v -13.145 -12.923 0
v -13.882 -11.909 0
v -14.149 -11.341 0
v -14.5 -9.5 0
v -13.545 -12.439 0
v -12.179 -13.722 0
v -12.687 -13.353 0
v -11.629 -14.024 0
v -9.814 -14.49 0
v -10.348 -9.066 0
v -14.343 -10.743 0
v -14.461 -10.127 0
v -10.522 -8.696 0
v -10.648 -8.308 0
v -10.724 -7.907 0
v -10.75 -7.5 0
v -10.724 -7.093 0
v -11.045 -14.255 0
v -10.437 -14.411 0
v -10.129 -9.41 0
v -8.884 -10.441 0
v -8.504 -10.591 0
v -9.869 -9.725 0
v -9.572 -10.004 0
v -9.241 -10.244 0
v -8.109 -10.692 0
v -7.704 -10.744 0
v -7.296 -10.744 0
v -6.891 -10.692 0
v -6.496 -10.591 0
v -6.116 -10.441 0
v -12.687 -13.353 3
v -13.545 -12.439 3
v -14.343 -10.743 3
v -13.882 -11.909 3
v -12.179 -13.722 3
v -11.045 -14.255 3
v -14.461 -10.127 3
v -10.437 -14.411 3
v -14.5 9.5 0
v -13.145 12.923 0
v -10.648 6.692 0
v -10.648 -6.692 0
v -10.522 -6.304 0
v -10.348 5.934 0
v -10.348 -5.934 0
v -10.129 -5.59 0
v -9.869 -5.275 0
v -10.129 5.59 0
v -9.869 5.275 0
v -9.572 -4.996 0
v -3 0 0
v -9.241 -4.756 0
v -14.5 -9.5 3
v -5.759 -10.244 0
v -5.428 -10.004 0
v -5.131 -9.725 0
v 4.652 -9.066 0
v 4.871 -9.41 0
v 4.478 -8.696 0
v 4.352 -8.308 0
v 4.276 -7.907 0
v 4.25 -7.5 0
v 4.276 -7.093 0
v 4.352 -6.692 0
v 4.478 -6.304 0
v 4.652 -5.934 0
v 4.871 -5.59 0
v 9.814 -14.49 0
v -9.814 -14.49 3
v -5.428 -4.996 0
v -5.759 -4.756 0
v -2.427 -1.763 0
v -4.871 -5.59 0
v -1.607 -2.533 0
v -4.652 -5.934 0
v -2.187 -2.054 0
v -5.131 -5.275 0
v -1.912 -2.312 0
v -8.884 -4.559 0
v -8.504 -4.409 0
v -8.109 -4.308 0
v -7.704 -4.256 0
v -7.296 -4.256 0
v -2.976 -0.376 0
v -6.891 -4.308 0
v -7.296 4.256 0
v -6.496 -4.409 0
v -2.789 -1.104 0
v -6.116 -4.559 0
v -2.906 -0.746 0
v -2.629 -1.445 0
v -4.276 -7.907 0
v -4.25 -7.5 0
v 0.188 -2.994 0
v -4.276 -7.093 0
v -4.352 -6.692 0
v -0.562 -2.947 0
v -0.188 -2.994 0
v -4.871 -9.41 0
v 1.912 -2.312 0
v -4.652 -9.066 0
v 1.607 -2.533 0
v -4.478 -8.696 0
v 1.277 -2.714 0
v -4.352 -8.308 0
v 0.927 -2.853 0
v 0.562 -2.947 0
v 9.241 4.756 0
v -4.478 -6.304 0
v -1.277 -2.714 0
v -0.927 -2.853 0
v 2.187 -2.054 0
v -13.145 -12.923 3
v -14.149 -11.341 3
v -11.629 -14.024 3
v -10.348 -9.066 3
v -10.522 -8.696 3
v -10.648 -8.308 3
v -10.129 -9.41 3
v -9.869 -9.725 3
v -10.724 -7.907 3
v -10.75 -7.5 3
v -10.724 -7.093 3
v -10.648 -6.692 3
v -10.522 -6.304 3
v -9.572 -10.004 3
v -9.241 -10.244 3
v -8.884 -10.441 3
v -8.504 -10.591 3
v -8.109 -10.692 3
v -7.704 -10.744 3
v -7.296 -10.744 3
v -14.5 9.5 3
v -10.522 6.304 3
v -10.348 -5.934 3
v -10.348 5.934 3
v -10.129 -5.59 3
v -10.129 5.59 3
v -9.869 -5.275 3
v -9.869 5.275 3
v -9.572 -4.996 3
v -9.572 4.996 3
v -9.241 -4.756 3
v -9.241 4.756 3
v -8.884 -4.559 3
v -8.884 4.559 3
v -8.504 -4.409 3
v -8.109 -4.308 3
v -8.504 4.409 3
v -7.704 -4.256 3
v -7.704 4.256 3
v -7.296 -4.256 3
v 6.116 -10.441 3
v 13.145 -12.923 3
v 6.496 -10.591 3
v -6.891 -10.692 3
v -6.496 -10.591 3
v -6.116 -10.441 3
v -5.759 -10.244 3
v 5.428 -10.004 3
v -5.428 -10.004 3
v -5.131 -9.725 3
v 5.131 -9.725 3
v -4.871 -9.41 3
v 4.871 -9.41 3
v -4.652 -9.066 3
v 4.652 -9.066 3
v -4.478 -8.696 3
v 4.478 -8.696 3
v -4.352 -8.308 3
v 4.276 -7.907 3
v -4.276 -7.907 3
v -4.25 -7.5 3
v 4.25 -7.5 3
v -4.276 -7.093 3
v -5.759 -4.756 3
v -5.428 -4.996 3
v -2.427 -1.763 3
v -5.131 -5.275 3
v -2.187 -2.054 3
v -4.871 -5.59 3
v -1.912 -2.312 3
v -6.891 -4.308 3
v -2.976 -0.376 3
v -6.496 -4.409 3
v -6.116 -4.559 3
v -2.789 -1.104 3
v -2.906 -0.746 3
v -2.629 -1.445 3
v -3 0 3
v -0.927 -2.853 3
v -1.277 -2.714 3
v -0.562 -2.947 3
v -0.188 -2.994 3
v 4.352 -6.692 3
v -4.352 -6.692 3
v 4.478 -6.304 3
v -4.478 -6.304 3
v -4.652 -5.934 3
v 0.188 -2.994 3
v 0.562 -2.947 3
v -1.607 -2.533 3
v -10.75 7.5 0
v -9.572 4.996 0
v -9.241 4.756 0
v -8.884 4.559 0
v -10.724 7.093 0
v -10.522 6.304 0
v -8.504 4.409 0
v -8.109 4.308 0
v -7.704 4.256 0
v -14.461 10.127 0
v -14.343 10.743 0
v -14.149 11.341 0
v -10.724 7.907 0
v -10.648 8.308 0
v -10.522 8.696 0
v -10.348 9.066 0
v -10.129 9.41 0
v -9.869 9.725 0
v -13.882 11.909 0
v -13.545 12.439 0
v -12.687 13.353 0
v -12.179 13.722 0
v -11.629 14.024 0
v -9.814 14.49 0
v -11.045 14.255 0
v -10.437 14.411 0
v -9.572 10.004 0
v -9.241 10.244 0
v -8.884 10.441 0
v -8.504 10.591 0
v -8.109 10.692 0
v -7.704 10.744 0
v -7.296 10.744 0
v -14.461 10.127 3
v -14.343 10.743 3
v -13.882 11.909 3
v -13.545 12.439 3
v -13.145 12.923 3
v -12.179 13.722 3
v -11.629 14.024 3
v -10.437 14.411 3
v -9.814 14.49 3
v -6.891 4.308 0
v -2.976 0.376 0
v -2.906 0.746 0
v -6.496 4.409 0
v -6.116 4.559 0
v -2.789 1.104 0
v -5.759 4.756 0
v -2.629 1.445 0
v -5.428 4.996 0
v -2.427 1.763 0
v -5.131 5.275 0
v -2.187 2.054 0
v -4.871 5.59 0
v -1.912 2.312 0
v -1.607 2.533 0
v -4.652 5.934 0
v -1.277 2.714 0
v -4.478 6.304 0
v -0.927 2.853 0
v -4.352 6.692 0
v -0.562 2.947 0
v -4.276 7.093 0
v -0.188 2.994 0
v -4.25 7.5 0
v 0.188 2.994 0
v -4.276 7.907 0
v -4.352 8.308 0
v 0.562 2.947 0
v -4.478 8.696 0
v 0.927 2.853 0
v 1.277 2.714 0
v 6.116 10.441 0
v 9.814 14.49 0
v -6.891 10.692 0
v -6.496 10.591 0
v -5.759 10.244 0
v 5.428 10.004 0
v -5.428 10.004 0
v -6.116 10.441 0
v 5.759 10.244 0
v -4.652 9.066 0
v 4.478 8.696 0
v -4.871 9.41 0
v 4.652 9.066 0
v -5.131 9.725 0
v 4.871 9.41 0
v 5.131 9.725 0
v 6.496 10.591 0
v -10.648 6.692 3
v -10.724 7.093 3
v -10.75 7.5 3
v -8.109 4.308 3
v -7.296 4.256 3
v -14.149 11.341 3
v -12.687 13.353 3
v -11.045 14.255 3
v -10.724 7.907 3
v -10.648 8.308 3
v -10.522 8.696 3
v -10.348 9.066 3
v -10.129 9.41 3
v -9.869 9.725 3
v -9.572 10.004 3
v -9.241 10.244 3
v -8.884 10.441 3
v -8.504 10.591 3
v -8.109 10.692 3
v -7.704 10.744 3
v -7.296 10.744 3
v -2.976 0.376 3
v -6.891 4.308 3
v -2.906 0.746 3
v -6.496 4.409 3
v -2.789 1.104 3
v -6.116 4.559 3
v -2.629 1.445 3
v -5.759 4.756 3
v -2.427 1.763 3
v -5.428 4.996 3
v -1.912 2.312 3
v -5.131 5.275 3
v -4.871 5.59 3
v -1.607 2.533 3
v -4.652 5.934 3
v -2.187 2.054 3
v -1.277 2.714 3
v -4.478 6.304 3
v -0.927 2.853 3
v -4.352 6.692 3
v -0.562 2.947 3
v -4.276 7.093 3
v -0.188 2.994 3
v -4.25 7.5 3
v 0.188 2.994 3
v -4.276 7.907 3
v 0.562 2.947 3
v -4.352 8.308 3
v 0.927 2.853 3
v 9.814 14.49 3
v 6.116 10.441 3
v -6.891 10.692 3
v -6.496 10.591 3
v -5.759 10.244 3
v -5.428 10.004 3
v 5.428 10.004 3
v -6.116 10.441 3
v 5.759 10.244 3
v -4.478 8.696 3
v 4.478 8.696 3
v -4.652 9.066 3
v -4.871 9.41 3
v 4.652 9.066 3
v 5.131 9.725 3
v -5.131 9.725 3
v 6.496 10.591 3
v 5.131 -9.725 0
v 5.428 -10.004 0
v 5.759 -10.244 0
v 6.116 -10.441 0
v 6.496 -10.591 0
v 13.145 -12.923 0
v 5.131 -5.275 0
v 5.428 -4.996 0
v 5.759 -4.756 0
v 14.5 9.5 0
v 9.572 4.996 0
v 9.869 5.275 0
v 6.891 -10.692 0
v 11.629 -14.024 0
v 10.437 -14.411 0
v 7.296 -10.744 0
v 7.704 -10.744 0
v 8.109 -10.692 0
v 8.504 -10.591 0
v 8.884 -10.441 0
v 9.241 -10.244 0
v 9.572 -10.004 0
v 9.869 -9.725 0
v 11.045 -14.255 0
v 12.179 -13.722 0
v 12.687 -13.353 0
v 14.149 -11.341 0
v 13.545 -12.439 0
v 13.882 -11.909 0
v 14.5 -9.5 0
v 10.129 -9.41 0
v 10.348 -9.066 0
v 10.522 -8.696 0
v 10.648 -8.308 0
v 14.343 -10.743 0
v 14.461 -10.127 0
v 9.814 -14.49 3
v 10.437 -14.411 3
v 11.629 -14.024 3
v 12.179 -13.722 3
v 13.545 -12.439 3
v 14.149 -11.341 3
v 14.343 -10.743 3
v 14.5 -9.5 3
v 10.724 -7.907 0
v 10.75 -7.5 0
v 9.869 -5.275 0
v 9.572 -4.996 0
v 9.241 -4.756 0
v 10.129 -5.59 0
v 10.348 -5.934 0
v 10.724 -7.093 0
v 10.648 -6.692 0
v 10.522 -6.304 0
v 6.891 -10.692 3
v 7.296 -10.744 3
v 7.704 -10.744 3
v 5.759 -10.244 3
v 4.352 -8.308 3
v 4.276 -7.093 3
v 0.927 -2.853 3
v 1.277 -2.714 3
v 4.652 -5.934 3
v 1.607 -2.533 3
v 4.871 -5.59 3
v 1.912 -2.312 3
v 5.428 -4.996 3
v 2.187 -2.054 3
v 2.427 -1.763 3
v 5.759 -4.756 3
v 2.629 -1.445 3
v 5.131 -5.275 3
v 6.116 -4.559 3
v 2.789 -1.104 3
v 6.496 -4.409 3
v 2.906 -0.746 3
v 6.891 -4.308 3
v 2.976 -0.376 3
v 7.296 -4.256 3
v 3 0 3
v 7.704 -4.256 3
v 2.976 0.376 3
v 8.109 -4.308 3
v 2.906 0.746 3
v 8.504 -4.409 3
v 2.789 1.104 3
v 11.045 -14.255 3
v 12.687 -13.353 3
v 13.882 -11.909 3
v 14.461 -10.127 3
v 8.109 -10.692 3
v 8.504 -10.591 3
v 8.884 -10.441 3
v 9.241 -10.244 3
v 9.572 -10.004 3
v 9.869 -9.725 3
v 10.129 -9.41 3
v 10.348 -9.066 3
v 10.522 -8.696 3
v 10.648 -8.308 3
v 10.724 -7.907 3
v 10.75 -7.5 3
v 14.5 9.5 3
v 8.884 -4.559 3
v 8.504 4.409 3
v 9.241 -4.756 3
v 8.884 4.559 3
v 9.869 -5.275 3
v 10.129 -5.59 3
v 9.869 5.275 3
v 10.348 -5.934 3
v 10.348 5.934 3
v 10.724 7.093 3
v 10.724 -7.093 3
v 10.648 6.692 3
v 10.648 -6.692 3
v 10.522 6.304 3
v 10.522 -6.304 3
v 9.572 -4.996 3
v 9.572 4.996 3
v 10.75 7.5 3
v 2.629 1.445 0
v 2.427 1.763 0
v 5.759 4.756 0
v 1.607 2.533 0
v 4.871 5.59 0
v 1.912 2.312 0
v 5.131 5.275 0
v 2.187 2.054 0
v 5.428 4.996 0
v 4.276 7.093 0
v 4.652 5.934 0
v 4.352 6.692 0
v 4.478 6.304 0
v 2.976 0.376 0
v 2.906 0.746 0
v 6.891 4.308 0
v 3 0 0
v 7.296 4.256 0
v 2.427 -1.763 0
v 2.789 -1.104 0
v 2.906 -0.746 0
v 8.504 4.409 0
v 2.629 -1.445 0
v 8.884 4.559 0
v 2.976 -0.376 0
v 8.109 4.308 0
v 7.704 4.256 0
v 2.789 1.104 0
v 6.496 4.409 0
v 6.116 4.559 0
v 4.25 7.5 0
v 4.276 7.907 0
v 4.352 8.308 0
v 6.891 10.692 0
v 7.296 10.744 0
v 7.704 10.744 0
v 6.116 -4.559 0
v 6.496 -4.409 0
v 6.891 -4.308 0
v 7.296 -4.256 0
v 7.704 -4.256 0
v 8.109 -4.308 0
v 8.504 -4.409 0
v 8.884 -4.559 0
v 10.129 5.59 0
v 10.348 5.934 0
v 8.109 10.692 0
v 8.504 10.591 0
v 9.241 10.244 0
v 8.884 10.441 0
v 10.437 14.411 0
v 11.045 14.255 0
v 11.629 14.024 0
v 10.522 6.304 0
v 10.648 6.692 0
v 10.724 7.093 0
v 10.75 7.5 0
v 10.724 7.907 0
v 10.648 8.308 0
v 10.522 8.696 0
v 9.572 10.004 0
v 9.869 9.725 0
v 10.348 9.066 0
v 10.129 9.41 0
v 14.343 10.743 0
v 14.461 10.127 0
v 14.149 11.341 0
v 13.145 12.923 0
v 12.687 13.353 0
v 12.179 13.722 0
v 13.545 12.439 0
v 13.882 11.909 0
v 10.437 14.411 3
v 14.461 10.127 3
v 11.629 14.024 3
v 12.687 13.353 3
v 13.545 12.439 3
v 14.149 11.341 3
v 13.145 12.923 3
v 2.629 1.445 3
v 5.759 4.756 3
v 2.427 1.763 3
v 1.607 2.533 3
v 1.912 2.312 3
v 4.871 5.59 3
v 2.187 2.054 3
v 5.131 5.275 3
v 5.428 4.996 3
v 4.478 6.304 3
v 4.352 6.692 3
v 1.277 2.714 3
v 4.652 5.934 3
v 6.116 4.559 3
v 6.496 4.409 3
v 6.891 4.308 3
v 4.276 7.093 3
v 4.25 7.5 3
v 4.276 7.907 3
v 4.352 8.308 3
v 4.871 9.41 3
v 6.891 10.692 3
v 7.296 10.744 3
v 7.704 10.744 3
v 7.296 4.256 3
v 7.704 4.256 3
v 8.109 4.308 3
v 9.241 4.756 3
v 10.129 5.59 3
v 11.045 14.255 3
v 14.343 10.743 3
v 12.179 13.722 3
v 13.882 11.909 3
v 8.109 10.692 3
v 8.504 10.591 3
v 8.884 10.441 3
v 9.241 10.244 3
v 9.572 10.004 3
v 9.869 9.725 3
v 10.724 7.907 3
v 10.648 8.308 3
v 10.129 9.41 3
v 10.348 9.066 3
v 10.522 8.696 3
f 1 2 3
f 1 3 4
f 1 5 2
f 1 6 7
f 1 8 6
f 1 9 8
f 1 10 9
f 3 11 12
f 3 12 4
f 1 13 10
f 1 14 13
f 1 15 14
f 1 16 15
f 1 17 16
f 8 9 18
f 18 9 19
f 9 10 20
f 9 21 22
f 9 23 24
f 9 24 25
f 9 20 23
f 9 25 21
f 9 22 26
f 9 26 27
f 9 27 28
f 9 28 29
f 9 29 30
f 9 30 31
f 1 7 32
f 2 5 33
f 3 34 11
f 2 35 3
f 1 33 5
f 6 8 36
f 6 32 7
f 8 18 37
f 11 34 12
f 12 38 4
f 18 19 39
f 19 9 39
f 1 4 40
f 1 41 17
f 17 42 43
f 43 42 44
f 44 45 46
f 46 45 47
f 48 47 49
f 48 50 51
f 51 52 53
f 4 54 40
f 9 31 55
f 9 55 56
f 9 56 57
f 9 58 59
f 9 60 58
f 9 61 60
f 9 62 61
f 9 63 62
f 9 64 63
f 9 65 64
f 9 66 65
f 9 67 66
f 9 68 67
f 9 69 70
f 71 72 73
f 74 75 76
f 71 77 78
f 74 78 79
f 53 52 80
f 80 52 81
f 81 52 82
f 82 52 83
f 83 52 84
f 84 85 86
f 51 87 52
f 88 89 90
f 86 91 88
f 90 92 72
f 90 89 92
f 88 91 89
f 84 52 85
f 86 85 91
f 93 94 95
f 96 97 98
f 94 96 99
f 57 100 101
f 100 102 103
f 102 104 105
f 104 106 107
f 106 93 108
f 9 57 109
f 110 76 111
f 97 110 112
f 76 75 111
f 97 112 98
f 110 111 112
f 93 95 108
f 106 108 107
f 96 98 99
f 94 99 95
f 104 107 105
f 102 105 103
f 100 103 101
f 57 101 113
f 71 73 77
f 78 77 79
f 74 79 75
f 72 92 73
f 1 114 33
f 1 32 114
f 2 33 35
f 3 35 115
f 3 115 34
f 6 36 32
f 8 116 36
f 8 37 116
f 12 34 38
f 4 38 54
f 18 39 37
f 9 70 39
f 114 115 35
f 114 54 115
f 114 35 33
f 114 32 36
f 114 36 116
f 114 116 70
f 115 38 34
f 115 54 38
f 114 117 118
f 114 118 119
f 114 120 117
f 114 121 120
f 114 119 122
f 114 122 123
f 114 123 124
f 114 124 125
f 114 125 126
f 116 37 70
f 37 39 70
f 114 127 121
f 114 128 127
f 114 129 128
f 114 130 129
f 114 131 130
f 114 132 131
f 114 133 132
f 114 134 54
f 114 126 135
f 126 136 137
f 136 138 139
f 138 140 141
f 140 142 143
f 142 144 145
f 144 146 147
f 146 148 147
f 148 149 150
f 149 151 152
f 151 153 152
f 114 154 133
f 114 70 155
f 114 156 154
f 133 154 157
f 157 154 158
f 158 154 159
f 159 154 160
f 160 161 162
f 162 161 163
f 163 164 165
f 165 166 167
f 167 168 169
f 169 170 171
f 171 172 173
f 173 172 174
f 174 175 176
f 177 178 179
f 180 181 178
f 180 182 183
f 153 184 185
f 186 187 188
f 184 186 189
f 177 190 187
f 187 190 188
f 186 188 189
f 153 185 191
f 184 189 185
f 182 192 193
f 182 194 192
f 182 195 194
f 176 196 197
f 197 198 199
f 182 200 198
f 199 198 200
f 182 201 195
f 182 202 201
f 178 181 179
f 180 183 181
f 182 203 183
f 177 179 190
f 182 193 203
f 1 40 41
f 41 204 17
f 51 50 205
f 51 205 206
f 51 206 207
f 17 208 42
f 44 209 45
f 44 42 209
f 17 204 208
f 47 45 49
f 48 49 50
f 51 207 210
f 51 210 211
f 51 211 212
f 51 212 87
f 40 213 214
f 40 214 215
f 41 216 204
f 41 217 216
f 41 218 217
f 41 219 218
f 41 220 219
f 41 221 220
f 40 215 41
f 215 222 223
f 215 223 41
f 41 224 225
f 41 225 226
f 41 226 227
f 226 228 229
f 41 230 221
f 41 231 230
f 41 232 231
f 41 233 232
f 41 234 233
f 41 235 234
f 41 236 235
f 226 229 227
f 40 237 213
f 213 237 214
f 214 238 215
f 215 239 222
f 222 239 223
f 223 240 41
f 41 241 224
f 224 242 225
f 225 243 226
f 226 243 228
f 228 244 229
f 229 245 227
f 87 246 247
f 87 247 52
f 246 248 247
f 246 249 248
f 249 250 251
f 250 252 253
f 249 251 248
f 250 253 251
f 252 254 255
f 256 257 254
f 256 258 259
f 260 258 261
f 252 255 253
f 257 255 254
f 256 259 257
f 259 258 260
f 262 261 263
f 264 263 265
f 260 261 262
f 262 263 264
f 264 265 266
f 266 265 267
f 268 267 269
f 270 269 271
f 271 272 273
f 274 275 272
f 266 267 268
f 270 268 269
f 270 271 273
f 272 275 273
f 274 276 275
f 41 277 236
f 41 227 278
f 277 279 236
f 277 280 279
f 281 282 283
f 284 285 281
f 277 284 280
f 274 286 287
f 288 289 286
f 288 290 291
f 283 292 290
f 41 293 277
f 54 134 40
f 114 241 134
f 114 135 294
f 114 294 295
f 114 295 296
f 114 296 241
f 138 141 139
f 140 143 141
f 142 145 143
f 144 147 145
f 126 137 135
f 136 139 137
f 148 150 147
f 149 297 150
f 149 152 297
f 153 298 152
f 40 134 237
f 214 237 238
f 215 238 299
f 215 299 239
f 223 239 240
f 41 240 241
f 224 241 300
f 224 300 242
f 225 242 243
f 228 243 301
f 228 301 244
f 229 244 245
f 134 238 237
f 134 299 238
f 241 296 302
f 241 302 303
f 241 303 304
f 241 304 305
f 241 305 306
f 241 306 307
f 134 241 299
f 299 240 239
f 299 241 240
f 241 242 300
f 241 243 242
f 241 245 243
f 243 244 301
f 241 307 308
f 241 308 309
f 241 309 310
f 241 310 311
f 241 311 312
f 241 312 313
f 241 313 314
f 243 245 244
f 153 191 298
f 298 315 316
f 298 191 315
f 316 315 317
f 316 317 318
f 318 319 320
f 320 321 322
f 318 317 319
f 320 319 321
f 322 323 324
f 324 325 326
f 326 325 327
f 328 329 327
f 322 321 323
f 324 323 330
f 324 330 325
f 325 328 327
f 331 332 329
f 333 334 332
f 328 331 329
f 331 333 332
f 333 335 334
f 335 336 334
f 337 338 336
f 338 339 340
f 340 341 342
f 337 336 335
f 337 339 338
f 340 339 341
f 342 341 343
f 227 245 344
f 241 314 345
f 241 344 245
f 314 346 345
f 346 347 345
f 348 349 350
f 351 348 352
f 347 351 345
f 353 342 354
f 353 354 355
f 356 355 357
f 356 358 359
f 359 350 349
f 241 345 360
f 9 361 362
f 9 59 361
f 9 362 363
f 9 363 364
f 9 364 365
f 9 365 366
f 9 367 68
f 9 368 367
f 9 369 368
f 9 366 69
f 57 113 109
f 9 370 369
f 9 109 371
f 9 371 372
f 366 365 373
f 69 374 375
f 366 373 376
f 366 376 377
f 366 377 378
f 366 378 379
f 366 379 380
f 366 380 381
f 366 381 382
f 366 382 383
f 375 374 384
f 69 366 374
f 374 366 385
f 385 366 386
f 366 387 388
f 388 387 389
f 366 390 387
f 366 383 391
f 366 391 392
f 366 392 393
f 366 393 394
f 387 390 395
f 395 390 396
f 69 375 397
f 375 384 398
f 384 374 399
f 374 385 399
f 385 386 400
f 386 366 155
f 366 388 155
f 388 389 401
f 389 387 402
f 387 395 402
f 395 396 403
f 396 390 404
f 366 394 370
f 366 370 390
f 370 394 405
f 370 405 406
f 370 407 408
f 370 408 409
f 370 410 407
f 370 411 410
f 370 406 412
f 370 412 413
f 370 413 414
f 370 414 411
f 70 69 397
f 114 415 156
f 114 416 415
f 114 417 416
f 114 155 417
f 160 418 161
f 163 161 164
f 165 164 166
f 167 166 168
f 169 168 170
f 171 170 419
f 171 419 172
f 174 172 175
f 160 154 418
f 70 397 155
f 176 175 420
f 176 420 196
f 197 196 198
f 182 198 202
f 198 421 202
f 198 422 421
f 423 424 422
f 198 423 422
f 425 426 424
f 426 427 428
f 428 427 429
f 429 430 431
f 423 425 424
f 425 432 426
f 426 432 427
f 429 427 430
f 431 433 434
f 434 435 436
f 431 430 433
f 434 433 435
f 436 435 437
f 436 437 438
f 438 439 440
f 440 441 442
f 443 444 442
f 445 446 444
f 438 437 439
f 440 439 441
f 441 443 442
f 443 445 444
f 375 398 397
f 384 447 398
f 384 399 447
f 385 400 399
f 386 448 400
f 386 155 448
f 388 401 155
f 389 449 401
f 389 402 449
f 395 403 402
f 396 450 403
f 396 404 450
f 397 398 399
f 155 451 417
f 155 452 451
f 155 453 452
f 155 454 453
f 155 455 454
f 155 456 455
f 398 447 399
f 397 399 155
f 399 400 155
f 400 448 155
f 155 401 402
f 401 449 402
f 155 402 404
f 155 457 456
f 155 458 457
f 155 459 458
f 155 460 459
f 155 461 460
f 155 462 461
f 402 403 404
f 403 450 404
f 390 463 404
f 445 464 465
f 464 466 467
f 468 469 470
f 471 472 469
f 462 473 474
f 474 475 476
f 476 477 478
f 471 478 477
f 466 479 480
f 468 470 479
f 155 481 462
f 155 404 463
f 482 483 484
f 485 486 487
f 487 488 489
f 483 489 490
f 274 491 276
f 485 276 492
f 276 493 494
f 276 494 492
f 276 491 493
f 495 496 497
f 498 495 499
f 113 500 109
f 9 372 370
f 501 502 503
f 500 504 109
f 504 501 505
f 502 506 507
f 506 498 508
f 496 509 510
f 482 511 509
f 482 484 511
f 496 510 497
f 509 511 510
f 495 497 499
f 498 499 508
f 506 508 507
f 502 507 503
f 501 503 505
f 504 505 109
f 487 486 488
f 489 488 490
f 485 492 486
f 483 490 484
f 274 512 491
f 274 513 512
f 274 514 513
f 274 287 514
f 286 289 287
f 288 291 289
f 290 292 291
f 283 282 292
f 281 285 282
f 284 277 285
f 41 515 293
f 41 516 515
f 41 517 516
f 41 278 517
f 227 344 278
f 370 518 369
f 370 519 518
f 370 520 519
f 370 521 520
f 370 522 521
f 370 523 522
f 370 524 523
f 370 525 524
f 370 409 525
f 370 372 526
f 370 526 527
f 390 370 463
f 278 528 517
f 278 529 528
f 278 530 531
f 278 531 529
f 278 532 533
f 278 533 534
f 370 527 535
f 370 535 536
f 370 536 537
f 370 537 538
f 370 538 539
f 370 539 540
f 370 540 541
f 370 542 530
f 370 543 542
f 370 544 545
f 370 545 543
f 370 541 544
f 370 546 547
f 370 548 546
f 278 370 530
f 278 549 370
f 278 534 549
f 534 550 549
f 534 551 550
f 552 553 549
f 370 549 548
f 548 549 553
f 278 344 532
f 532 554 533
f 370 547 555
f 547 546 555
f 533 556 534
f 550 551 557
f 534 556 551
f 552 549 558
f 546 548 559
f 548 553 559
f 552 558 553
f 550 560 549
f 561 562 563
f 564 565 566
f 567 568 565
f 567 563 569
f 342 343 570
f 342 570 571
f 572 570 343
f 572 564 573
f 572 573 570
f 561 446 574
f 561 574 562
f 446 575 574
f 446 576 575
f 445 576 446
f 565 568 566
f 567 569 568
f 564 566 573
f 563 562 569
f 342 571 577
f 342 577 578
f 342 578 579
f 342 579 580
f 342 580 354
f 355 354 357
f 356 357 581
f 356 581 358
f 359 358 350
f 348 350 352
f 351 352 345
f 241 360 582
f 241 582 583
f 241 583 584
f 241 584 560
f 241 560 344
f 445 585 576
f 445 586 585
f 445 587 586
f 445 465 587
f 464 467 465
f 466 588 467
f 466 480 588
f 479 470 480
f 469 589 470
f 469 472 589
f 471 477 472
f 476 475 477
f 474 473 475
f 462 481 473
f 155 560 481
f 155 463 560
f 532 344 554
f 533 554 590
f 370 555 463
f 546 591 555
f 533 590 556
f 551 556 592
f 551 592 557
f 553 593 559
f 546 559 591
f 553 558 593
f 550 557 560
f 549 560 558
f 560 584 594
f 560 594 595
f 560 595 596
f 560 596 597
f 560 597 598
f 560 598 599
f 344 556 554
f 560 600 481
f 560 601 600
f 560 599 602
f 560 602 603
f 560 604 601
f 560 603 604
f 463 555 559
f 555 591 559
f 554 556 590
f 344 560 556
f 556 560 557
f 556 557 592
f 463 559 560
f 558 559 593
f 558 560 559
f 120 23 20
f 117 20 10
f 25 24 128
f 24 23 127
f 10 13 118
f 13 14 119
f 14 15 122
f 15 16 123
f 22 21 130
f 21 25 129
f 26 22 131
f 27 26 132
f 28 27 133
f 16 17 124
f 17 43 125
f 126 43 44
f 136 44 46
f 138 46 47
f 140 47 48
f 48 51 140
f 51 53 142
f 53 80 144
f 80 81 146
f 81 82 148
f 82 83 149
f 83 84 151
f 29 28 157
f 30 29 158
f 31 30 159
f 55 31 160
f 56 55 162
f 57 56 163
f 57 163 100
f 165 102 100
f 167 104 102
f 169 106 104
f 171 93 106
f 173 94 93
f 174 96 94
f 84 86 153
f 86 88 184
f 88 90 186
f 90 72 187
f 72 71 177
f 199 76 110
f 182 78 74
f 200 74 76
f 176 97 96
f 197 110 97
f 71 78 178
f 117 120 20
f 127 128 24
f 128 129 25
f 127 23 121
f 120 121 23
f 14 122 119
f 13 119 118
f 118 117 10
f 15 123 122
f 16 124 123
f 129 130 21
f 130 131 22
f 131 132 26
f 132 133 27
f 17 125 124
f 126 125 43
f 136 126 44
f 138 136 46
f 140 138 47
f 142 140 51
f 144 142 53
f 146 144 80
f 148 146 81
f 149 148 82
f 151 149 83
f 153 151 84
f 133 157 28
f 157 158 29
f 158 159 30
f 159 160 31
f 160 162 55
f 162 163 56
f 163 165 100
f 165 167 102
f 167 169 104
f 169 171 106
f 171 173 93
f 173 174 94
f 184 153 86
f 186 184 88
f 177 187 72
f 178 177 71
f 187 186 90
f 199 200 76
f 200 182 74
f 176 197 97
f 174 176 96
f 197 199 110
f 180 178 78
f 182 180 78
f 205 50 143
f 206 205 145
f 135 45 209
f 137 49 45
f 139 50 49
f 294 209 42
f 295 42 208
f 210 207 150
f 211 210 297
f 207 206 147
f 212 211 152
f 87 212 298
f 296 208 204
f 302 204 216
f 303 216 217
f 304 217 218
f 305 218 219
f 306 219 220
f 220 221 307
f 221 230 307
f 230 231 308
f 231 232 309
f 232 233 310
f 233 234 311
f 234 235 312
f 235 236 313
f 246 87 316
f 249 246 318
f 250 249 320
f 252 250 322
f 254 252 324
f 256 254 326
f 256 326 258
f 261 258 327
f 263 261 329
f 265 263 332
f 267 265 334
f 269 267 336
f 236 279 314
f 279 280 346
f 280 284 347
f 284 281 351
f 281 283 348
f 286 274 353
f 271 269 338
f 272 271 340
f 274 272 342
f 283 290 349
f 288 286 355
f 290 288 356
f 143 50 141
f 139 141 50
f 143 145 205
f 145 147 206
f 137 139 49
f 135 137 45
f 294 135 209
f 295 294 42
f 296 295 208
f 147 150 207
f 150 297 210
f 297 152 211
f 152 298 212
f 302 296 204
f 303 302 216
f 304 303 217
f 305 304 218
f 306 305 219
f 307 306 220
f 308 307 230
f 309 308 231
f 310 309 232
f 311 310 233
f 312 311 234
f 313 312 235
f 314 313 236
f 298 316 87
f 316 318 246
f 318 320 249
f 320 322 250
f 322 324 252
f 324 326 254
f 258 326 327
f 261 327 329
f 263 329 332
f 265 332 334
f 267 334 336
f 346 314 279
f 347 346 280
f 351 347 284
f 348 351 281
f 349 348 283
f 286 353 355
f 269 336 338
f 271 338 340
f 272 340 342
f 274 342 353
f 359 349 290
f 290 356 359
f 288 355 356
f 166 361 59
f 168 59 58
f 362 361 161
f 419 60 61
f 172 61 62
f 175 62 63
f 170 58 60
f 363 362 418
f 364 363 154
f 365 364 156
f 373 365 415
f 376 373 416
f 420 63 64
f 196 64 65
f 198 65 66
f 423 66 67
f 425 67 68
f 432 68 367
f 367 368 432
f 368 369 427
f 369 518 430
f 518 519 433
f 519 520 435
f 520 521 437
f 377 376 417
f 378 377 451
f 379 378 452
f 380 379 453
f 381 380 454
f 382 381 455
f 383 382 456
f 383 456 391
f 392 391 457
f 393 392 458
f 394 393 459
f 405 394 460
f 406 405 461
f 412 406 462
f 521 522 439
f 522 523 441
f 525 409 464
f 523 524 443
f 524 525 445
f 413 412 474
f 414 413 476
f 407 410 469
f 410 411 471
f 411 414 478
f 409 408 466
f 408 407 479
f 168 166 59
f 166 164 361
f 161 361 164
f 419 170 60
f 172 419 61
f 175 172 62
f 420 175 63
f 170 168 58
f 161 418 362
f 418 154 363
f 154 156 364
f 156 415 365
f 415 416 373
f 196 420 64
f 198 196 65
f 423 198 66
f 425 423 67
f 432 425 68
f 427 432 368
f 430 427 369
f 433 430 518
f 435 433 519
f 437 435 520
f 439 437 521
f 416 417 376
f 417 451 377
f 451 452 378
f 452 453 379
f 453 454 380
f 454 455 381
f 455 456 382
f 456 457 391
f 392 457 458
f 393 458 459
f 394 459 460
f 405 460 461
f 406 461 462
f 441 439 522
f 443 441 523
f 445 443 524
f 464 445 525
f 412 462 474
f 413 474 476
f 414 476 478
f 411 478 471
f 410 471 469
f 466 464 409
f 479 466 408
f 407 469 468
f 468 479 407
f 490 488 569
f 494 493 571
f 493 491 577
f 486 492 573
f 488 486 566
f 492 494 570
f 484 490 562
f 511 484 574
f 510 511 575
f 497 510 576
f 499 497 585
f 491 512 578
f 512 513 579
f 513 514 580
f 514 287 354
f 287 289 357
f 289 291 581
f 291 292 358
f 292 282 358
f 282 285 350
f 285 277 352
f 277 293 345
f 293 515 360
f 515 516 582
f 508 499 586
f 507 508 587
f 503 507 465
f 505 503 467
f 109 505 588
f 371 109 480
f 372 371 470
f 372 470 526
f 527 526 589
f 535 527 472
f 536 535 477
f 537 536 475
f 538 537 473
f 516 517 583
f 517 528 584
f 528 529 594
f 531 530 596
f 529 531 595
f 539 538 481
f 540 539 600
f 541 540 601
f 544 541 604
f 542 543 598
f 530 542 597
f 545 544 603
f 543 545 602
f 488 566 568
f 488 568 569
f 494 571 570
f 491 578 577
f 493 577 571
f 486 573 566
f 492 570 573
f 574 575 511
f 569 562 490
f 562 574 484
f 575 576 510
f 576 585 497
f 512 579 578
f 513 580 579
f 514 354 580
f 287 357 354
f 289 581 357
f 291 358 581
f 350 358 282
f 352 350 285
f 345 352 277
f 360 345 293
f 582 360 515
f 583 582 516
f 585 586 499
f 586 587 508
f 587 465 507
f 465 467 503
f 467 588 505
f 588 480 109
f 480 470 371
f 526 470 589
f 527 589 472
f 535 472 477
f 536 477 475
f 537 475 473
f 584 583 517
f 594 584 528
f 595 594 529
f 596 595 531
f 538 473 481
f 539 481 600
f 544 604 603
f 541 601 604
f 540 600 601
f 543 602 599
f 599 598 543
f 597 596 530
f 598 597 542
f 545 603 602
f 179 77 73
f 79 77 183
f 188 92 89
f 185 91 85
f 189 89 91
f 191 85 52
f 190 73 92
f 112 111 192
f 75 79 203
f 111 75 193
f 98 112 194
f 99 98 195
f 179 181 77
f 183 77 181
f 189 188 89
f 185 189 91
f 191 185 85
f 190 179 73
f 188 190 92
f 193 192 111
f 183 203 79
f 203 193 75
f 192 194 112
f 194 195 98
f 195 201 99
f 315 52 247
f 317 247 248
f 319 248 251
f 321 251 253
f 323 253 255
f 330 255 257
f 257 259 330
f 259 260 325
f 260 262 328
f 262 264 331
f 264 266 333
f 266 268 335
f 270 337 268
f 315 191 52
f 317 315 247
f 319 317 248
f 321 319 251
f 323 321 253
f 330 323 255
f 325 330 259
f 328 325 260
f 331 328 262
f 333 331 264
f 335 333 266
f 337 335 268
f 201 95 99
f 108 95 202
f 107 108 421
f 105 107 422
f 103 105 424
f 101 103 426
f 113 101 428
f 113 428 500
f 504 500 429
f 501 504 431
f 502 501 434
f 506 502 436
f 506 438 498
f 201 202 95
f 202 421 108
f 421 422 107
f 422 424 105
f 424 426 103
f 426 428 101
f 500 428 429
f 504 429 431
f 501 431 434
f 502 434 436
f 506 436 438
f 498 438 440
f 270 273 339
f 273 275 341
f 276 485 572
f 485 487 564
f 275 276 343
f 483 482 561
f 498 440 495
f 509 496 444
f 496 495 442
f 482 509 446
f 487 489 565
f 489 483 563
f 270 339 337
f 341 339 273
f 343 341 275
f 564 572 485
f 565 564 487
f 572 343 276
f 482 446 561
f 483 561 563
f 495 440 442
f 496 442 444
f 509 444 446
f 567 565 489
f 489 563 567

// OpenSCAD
$fn = 50;

difference() {
	union() {
		hull() {
			translate(v = [-9.5, 9.5, 0]) {
				cylinder(h = 3, r = 5);
			}
			translate(v = [9.5, 9.5, 0]) {
				cylinder(h = 3, r = 5);
			}
			translate(v = [-9.5, -9.5, 0]) {
				cylinder(h = 3, r = 5);
			}
			translate(v = [9.5, -9.5, 0]) {
				cylinder(h = 3, r = 5);
			}
		}
	}
	union() {
		translate(v = [-7.5, -7.5, 0]) {
			cylinder(h = 3, r = 3.25);
		}
		translate(v = [-7.5, 7.5, 0]) {
			cylinder(h = 3, r = 3.25);
		}
		translate(v = [7.5, -7.5, 0]) {
			cylinder(h = 3, r = 3.25);
		}
		translate(v = [7.5, 7.5, 0]) {
			cylinder(h = 3, r = 3.25);
		}
		cylinder(h = 3, r = 3.0);
	}
}
